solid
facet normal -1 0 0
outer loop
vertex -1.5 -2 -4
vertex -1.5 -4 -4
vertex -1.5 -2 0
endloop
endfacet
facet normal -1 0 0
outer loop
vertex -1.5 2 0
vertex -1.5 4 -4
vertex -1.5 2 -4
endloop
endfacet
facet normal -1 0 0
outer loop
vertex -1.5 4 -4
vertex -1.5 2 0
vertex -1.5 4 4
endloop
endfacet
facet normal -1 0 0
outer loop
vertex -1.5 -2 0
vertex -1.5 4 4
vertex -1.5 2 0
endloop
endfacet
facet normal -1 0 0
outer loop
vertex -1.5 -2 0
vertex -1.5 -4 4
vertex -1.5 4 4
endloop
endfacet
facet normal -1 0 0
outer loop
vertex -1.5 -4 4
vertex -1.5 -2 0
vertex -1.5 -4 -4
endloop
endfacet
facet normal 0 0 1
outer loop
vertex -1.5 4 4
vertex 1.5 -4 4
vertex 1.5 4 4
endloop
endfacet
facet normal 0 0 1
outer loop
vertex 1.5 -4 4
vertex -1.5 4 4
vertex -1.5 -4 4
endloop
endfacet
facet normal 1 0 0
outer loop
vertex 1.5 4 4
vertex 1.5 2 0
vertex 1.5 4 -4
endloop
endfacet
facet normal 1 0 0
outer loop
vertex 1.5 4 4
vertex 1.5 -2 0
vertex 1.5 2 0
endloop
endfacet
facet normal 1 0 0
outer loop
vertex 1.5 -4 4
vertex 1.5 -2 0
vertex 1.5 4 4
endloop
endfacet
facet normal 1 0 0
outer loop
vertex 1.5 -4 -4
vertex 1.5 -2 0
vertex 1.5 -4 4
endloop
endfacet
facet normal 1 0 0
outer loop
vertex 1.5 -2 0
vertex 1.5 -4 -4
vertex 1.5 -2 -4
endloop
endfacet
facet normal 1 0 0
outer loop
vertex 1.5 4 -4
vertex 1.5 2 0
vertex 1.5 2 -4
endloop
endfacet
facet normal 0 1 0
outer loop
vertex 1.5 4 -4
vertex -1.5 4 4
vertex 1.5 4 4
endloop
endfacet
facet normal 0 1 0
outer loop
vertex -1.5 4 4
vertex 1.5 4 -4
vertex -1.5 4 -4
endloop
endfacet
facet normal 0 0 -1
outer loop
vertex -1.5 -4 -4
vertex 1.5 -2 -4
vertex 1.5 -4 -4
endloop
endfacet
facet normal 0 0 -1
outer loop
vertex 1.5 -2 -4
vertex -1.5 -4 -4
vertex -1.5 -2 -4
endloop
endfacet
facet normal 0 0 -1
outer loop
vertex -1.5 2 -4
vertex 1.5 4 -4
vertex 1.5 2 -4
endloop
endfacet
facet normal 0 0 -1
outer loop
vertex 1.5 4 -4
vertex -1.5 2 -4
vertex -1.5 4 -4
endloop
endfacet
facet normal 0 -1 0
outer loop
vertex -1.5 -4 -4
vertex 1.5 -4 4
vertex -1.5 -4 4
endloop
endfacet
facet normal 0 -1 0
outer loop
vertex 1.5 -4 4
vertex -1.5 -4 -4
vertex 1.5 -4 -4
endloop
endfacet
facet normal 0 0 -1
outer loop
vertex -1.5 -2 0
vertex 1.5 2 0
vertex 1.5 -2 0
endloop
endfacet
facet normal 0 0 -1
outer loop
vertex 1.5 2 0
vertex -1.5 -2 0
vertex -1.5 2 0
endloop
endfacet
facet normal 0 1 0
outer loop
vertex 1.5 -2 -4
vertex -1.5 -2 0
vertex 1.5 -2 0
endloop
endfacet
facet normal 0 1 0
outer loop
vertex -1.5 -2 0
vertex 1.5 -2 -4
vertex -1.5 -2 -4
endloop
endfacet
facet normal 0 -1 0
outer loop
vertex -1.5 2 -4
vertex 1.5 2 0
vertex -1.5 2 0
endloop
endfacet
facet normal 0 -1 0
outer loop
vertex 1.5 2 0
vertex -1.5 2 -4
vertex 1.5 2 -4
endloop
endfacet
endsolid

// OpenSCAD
$fn=120;
difference(){
     cube([3,8,8],true);
     translate([0,0,-2])cube([3,4,4],true);
}
